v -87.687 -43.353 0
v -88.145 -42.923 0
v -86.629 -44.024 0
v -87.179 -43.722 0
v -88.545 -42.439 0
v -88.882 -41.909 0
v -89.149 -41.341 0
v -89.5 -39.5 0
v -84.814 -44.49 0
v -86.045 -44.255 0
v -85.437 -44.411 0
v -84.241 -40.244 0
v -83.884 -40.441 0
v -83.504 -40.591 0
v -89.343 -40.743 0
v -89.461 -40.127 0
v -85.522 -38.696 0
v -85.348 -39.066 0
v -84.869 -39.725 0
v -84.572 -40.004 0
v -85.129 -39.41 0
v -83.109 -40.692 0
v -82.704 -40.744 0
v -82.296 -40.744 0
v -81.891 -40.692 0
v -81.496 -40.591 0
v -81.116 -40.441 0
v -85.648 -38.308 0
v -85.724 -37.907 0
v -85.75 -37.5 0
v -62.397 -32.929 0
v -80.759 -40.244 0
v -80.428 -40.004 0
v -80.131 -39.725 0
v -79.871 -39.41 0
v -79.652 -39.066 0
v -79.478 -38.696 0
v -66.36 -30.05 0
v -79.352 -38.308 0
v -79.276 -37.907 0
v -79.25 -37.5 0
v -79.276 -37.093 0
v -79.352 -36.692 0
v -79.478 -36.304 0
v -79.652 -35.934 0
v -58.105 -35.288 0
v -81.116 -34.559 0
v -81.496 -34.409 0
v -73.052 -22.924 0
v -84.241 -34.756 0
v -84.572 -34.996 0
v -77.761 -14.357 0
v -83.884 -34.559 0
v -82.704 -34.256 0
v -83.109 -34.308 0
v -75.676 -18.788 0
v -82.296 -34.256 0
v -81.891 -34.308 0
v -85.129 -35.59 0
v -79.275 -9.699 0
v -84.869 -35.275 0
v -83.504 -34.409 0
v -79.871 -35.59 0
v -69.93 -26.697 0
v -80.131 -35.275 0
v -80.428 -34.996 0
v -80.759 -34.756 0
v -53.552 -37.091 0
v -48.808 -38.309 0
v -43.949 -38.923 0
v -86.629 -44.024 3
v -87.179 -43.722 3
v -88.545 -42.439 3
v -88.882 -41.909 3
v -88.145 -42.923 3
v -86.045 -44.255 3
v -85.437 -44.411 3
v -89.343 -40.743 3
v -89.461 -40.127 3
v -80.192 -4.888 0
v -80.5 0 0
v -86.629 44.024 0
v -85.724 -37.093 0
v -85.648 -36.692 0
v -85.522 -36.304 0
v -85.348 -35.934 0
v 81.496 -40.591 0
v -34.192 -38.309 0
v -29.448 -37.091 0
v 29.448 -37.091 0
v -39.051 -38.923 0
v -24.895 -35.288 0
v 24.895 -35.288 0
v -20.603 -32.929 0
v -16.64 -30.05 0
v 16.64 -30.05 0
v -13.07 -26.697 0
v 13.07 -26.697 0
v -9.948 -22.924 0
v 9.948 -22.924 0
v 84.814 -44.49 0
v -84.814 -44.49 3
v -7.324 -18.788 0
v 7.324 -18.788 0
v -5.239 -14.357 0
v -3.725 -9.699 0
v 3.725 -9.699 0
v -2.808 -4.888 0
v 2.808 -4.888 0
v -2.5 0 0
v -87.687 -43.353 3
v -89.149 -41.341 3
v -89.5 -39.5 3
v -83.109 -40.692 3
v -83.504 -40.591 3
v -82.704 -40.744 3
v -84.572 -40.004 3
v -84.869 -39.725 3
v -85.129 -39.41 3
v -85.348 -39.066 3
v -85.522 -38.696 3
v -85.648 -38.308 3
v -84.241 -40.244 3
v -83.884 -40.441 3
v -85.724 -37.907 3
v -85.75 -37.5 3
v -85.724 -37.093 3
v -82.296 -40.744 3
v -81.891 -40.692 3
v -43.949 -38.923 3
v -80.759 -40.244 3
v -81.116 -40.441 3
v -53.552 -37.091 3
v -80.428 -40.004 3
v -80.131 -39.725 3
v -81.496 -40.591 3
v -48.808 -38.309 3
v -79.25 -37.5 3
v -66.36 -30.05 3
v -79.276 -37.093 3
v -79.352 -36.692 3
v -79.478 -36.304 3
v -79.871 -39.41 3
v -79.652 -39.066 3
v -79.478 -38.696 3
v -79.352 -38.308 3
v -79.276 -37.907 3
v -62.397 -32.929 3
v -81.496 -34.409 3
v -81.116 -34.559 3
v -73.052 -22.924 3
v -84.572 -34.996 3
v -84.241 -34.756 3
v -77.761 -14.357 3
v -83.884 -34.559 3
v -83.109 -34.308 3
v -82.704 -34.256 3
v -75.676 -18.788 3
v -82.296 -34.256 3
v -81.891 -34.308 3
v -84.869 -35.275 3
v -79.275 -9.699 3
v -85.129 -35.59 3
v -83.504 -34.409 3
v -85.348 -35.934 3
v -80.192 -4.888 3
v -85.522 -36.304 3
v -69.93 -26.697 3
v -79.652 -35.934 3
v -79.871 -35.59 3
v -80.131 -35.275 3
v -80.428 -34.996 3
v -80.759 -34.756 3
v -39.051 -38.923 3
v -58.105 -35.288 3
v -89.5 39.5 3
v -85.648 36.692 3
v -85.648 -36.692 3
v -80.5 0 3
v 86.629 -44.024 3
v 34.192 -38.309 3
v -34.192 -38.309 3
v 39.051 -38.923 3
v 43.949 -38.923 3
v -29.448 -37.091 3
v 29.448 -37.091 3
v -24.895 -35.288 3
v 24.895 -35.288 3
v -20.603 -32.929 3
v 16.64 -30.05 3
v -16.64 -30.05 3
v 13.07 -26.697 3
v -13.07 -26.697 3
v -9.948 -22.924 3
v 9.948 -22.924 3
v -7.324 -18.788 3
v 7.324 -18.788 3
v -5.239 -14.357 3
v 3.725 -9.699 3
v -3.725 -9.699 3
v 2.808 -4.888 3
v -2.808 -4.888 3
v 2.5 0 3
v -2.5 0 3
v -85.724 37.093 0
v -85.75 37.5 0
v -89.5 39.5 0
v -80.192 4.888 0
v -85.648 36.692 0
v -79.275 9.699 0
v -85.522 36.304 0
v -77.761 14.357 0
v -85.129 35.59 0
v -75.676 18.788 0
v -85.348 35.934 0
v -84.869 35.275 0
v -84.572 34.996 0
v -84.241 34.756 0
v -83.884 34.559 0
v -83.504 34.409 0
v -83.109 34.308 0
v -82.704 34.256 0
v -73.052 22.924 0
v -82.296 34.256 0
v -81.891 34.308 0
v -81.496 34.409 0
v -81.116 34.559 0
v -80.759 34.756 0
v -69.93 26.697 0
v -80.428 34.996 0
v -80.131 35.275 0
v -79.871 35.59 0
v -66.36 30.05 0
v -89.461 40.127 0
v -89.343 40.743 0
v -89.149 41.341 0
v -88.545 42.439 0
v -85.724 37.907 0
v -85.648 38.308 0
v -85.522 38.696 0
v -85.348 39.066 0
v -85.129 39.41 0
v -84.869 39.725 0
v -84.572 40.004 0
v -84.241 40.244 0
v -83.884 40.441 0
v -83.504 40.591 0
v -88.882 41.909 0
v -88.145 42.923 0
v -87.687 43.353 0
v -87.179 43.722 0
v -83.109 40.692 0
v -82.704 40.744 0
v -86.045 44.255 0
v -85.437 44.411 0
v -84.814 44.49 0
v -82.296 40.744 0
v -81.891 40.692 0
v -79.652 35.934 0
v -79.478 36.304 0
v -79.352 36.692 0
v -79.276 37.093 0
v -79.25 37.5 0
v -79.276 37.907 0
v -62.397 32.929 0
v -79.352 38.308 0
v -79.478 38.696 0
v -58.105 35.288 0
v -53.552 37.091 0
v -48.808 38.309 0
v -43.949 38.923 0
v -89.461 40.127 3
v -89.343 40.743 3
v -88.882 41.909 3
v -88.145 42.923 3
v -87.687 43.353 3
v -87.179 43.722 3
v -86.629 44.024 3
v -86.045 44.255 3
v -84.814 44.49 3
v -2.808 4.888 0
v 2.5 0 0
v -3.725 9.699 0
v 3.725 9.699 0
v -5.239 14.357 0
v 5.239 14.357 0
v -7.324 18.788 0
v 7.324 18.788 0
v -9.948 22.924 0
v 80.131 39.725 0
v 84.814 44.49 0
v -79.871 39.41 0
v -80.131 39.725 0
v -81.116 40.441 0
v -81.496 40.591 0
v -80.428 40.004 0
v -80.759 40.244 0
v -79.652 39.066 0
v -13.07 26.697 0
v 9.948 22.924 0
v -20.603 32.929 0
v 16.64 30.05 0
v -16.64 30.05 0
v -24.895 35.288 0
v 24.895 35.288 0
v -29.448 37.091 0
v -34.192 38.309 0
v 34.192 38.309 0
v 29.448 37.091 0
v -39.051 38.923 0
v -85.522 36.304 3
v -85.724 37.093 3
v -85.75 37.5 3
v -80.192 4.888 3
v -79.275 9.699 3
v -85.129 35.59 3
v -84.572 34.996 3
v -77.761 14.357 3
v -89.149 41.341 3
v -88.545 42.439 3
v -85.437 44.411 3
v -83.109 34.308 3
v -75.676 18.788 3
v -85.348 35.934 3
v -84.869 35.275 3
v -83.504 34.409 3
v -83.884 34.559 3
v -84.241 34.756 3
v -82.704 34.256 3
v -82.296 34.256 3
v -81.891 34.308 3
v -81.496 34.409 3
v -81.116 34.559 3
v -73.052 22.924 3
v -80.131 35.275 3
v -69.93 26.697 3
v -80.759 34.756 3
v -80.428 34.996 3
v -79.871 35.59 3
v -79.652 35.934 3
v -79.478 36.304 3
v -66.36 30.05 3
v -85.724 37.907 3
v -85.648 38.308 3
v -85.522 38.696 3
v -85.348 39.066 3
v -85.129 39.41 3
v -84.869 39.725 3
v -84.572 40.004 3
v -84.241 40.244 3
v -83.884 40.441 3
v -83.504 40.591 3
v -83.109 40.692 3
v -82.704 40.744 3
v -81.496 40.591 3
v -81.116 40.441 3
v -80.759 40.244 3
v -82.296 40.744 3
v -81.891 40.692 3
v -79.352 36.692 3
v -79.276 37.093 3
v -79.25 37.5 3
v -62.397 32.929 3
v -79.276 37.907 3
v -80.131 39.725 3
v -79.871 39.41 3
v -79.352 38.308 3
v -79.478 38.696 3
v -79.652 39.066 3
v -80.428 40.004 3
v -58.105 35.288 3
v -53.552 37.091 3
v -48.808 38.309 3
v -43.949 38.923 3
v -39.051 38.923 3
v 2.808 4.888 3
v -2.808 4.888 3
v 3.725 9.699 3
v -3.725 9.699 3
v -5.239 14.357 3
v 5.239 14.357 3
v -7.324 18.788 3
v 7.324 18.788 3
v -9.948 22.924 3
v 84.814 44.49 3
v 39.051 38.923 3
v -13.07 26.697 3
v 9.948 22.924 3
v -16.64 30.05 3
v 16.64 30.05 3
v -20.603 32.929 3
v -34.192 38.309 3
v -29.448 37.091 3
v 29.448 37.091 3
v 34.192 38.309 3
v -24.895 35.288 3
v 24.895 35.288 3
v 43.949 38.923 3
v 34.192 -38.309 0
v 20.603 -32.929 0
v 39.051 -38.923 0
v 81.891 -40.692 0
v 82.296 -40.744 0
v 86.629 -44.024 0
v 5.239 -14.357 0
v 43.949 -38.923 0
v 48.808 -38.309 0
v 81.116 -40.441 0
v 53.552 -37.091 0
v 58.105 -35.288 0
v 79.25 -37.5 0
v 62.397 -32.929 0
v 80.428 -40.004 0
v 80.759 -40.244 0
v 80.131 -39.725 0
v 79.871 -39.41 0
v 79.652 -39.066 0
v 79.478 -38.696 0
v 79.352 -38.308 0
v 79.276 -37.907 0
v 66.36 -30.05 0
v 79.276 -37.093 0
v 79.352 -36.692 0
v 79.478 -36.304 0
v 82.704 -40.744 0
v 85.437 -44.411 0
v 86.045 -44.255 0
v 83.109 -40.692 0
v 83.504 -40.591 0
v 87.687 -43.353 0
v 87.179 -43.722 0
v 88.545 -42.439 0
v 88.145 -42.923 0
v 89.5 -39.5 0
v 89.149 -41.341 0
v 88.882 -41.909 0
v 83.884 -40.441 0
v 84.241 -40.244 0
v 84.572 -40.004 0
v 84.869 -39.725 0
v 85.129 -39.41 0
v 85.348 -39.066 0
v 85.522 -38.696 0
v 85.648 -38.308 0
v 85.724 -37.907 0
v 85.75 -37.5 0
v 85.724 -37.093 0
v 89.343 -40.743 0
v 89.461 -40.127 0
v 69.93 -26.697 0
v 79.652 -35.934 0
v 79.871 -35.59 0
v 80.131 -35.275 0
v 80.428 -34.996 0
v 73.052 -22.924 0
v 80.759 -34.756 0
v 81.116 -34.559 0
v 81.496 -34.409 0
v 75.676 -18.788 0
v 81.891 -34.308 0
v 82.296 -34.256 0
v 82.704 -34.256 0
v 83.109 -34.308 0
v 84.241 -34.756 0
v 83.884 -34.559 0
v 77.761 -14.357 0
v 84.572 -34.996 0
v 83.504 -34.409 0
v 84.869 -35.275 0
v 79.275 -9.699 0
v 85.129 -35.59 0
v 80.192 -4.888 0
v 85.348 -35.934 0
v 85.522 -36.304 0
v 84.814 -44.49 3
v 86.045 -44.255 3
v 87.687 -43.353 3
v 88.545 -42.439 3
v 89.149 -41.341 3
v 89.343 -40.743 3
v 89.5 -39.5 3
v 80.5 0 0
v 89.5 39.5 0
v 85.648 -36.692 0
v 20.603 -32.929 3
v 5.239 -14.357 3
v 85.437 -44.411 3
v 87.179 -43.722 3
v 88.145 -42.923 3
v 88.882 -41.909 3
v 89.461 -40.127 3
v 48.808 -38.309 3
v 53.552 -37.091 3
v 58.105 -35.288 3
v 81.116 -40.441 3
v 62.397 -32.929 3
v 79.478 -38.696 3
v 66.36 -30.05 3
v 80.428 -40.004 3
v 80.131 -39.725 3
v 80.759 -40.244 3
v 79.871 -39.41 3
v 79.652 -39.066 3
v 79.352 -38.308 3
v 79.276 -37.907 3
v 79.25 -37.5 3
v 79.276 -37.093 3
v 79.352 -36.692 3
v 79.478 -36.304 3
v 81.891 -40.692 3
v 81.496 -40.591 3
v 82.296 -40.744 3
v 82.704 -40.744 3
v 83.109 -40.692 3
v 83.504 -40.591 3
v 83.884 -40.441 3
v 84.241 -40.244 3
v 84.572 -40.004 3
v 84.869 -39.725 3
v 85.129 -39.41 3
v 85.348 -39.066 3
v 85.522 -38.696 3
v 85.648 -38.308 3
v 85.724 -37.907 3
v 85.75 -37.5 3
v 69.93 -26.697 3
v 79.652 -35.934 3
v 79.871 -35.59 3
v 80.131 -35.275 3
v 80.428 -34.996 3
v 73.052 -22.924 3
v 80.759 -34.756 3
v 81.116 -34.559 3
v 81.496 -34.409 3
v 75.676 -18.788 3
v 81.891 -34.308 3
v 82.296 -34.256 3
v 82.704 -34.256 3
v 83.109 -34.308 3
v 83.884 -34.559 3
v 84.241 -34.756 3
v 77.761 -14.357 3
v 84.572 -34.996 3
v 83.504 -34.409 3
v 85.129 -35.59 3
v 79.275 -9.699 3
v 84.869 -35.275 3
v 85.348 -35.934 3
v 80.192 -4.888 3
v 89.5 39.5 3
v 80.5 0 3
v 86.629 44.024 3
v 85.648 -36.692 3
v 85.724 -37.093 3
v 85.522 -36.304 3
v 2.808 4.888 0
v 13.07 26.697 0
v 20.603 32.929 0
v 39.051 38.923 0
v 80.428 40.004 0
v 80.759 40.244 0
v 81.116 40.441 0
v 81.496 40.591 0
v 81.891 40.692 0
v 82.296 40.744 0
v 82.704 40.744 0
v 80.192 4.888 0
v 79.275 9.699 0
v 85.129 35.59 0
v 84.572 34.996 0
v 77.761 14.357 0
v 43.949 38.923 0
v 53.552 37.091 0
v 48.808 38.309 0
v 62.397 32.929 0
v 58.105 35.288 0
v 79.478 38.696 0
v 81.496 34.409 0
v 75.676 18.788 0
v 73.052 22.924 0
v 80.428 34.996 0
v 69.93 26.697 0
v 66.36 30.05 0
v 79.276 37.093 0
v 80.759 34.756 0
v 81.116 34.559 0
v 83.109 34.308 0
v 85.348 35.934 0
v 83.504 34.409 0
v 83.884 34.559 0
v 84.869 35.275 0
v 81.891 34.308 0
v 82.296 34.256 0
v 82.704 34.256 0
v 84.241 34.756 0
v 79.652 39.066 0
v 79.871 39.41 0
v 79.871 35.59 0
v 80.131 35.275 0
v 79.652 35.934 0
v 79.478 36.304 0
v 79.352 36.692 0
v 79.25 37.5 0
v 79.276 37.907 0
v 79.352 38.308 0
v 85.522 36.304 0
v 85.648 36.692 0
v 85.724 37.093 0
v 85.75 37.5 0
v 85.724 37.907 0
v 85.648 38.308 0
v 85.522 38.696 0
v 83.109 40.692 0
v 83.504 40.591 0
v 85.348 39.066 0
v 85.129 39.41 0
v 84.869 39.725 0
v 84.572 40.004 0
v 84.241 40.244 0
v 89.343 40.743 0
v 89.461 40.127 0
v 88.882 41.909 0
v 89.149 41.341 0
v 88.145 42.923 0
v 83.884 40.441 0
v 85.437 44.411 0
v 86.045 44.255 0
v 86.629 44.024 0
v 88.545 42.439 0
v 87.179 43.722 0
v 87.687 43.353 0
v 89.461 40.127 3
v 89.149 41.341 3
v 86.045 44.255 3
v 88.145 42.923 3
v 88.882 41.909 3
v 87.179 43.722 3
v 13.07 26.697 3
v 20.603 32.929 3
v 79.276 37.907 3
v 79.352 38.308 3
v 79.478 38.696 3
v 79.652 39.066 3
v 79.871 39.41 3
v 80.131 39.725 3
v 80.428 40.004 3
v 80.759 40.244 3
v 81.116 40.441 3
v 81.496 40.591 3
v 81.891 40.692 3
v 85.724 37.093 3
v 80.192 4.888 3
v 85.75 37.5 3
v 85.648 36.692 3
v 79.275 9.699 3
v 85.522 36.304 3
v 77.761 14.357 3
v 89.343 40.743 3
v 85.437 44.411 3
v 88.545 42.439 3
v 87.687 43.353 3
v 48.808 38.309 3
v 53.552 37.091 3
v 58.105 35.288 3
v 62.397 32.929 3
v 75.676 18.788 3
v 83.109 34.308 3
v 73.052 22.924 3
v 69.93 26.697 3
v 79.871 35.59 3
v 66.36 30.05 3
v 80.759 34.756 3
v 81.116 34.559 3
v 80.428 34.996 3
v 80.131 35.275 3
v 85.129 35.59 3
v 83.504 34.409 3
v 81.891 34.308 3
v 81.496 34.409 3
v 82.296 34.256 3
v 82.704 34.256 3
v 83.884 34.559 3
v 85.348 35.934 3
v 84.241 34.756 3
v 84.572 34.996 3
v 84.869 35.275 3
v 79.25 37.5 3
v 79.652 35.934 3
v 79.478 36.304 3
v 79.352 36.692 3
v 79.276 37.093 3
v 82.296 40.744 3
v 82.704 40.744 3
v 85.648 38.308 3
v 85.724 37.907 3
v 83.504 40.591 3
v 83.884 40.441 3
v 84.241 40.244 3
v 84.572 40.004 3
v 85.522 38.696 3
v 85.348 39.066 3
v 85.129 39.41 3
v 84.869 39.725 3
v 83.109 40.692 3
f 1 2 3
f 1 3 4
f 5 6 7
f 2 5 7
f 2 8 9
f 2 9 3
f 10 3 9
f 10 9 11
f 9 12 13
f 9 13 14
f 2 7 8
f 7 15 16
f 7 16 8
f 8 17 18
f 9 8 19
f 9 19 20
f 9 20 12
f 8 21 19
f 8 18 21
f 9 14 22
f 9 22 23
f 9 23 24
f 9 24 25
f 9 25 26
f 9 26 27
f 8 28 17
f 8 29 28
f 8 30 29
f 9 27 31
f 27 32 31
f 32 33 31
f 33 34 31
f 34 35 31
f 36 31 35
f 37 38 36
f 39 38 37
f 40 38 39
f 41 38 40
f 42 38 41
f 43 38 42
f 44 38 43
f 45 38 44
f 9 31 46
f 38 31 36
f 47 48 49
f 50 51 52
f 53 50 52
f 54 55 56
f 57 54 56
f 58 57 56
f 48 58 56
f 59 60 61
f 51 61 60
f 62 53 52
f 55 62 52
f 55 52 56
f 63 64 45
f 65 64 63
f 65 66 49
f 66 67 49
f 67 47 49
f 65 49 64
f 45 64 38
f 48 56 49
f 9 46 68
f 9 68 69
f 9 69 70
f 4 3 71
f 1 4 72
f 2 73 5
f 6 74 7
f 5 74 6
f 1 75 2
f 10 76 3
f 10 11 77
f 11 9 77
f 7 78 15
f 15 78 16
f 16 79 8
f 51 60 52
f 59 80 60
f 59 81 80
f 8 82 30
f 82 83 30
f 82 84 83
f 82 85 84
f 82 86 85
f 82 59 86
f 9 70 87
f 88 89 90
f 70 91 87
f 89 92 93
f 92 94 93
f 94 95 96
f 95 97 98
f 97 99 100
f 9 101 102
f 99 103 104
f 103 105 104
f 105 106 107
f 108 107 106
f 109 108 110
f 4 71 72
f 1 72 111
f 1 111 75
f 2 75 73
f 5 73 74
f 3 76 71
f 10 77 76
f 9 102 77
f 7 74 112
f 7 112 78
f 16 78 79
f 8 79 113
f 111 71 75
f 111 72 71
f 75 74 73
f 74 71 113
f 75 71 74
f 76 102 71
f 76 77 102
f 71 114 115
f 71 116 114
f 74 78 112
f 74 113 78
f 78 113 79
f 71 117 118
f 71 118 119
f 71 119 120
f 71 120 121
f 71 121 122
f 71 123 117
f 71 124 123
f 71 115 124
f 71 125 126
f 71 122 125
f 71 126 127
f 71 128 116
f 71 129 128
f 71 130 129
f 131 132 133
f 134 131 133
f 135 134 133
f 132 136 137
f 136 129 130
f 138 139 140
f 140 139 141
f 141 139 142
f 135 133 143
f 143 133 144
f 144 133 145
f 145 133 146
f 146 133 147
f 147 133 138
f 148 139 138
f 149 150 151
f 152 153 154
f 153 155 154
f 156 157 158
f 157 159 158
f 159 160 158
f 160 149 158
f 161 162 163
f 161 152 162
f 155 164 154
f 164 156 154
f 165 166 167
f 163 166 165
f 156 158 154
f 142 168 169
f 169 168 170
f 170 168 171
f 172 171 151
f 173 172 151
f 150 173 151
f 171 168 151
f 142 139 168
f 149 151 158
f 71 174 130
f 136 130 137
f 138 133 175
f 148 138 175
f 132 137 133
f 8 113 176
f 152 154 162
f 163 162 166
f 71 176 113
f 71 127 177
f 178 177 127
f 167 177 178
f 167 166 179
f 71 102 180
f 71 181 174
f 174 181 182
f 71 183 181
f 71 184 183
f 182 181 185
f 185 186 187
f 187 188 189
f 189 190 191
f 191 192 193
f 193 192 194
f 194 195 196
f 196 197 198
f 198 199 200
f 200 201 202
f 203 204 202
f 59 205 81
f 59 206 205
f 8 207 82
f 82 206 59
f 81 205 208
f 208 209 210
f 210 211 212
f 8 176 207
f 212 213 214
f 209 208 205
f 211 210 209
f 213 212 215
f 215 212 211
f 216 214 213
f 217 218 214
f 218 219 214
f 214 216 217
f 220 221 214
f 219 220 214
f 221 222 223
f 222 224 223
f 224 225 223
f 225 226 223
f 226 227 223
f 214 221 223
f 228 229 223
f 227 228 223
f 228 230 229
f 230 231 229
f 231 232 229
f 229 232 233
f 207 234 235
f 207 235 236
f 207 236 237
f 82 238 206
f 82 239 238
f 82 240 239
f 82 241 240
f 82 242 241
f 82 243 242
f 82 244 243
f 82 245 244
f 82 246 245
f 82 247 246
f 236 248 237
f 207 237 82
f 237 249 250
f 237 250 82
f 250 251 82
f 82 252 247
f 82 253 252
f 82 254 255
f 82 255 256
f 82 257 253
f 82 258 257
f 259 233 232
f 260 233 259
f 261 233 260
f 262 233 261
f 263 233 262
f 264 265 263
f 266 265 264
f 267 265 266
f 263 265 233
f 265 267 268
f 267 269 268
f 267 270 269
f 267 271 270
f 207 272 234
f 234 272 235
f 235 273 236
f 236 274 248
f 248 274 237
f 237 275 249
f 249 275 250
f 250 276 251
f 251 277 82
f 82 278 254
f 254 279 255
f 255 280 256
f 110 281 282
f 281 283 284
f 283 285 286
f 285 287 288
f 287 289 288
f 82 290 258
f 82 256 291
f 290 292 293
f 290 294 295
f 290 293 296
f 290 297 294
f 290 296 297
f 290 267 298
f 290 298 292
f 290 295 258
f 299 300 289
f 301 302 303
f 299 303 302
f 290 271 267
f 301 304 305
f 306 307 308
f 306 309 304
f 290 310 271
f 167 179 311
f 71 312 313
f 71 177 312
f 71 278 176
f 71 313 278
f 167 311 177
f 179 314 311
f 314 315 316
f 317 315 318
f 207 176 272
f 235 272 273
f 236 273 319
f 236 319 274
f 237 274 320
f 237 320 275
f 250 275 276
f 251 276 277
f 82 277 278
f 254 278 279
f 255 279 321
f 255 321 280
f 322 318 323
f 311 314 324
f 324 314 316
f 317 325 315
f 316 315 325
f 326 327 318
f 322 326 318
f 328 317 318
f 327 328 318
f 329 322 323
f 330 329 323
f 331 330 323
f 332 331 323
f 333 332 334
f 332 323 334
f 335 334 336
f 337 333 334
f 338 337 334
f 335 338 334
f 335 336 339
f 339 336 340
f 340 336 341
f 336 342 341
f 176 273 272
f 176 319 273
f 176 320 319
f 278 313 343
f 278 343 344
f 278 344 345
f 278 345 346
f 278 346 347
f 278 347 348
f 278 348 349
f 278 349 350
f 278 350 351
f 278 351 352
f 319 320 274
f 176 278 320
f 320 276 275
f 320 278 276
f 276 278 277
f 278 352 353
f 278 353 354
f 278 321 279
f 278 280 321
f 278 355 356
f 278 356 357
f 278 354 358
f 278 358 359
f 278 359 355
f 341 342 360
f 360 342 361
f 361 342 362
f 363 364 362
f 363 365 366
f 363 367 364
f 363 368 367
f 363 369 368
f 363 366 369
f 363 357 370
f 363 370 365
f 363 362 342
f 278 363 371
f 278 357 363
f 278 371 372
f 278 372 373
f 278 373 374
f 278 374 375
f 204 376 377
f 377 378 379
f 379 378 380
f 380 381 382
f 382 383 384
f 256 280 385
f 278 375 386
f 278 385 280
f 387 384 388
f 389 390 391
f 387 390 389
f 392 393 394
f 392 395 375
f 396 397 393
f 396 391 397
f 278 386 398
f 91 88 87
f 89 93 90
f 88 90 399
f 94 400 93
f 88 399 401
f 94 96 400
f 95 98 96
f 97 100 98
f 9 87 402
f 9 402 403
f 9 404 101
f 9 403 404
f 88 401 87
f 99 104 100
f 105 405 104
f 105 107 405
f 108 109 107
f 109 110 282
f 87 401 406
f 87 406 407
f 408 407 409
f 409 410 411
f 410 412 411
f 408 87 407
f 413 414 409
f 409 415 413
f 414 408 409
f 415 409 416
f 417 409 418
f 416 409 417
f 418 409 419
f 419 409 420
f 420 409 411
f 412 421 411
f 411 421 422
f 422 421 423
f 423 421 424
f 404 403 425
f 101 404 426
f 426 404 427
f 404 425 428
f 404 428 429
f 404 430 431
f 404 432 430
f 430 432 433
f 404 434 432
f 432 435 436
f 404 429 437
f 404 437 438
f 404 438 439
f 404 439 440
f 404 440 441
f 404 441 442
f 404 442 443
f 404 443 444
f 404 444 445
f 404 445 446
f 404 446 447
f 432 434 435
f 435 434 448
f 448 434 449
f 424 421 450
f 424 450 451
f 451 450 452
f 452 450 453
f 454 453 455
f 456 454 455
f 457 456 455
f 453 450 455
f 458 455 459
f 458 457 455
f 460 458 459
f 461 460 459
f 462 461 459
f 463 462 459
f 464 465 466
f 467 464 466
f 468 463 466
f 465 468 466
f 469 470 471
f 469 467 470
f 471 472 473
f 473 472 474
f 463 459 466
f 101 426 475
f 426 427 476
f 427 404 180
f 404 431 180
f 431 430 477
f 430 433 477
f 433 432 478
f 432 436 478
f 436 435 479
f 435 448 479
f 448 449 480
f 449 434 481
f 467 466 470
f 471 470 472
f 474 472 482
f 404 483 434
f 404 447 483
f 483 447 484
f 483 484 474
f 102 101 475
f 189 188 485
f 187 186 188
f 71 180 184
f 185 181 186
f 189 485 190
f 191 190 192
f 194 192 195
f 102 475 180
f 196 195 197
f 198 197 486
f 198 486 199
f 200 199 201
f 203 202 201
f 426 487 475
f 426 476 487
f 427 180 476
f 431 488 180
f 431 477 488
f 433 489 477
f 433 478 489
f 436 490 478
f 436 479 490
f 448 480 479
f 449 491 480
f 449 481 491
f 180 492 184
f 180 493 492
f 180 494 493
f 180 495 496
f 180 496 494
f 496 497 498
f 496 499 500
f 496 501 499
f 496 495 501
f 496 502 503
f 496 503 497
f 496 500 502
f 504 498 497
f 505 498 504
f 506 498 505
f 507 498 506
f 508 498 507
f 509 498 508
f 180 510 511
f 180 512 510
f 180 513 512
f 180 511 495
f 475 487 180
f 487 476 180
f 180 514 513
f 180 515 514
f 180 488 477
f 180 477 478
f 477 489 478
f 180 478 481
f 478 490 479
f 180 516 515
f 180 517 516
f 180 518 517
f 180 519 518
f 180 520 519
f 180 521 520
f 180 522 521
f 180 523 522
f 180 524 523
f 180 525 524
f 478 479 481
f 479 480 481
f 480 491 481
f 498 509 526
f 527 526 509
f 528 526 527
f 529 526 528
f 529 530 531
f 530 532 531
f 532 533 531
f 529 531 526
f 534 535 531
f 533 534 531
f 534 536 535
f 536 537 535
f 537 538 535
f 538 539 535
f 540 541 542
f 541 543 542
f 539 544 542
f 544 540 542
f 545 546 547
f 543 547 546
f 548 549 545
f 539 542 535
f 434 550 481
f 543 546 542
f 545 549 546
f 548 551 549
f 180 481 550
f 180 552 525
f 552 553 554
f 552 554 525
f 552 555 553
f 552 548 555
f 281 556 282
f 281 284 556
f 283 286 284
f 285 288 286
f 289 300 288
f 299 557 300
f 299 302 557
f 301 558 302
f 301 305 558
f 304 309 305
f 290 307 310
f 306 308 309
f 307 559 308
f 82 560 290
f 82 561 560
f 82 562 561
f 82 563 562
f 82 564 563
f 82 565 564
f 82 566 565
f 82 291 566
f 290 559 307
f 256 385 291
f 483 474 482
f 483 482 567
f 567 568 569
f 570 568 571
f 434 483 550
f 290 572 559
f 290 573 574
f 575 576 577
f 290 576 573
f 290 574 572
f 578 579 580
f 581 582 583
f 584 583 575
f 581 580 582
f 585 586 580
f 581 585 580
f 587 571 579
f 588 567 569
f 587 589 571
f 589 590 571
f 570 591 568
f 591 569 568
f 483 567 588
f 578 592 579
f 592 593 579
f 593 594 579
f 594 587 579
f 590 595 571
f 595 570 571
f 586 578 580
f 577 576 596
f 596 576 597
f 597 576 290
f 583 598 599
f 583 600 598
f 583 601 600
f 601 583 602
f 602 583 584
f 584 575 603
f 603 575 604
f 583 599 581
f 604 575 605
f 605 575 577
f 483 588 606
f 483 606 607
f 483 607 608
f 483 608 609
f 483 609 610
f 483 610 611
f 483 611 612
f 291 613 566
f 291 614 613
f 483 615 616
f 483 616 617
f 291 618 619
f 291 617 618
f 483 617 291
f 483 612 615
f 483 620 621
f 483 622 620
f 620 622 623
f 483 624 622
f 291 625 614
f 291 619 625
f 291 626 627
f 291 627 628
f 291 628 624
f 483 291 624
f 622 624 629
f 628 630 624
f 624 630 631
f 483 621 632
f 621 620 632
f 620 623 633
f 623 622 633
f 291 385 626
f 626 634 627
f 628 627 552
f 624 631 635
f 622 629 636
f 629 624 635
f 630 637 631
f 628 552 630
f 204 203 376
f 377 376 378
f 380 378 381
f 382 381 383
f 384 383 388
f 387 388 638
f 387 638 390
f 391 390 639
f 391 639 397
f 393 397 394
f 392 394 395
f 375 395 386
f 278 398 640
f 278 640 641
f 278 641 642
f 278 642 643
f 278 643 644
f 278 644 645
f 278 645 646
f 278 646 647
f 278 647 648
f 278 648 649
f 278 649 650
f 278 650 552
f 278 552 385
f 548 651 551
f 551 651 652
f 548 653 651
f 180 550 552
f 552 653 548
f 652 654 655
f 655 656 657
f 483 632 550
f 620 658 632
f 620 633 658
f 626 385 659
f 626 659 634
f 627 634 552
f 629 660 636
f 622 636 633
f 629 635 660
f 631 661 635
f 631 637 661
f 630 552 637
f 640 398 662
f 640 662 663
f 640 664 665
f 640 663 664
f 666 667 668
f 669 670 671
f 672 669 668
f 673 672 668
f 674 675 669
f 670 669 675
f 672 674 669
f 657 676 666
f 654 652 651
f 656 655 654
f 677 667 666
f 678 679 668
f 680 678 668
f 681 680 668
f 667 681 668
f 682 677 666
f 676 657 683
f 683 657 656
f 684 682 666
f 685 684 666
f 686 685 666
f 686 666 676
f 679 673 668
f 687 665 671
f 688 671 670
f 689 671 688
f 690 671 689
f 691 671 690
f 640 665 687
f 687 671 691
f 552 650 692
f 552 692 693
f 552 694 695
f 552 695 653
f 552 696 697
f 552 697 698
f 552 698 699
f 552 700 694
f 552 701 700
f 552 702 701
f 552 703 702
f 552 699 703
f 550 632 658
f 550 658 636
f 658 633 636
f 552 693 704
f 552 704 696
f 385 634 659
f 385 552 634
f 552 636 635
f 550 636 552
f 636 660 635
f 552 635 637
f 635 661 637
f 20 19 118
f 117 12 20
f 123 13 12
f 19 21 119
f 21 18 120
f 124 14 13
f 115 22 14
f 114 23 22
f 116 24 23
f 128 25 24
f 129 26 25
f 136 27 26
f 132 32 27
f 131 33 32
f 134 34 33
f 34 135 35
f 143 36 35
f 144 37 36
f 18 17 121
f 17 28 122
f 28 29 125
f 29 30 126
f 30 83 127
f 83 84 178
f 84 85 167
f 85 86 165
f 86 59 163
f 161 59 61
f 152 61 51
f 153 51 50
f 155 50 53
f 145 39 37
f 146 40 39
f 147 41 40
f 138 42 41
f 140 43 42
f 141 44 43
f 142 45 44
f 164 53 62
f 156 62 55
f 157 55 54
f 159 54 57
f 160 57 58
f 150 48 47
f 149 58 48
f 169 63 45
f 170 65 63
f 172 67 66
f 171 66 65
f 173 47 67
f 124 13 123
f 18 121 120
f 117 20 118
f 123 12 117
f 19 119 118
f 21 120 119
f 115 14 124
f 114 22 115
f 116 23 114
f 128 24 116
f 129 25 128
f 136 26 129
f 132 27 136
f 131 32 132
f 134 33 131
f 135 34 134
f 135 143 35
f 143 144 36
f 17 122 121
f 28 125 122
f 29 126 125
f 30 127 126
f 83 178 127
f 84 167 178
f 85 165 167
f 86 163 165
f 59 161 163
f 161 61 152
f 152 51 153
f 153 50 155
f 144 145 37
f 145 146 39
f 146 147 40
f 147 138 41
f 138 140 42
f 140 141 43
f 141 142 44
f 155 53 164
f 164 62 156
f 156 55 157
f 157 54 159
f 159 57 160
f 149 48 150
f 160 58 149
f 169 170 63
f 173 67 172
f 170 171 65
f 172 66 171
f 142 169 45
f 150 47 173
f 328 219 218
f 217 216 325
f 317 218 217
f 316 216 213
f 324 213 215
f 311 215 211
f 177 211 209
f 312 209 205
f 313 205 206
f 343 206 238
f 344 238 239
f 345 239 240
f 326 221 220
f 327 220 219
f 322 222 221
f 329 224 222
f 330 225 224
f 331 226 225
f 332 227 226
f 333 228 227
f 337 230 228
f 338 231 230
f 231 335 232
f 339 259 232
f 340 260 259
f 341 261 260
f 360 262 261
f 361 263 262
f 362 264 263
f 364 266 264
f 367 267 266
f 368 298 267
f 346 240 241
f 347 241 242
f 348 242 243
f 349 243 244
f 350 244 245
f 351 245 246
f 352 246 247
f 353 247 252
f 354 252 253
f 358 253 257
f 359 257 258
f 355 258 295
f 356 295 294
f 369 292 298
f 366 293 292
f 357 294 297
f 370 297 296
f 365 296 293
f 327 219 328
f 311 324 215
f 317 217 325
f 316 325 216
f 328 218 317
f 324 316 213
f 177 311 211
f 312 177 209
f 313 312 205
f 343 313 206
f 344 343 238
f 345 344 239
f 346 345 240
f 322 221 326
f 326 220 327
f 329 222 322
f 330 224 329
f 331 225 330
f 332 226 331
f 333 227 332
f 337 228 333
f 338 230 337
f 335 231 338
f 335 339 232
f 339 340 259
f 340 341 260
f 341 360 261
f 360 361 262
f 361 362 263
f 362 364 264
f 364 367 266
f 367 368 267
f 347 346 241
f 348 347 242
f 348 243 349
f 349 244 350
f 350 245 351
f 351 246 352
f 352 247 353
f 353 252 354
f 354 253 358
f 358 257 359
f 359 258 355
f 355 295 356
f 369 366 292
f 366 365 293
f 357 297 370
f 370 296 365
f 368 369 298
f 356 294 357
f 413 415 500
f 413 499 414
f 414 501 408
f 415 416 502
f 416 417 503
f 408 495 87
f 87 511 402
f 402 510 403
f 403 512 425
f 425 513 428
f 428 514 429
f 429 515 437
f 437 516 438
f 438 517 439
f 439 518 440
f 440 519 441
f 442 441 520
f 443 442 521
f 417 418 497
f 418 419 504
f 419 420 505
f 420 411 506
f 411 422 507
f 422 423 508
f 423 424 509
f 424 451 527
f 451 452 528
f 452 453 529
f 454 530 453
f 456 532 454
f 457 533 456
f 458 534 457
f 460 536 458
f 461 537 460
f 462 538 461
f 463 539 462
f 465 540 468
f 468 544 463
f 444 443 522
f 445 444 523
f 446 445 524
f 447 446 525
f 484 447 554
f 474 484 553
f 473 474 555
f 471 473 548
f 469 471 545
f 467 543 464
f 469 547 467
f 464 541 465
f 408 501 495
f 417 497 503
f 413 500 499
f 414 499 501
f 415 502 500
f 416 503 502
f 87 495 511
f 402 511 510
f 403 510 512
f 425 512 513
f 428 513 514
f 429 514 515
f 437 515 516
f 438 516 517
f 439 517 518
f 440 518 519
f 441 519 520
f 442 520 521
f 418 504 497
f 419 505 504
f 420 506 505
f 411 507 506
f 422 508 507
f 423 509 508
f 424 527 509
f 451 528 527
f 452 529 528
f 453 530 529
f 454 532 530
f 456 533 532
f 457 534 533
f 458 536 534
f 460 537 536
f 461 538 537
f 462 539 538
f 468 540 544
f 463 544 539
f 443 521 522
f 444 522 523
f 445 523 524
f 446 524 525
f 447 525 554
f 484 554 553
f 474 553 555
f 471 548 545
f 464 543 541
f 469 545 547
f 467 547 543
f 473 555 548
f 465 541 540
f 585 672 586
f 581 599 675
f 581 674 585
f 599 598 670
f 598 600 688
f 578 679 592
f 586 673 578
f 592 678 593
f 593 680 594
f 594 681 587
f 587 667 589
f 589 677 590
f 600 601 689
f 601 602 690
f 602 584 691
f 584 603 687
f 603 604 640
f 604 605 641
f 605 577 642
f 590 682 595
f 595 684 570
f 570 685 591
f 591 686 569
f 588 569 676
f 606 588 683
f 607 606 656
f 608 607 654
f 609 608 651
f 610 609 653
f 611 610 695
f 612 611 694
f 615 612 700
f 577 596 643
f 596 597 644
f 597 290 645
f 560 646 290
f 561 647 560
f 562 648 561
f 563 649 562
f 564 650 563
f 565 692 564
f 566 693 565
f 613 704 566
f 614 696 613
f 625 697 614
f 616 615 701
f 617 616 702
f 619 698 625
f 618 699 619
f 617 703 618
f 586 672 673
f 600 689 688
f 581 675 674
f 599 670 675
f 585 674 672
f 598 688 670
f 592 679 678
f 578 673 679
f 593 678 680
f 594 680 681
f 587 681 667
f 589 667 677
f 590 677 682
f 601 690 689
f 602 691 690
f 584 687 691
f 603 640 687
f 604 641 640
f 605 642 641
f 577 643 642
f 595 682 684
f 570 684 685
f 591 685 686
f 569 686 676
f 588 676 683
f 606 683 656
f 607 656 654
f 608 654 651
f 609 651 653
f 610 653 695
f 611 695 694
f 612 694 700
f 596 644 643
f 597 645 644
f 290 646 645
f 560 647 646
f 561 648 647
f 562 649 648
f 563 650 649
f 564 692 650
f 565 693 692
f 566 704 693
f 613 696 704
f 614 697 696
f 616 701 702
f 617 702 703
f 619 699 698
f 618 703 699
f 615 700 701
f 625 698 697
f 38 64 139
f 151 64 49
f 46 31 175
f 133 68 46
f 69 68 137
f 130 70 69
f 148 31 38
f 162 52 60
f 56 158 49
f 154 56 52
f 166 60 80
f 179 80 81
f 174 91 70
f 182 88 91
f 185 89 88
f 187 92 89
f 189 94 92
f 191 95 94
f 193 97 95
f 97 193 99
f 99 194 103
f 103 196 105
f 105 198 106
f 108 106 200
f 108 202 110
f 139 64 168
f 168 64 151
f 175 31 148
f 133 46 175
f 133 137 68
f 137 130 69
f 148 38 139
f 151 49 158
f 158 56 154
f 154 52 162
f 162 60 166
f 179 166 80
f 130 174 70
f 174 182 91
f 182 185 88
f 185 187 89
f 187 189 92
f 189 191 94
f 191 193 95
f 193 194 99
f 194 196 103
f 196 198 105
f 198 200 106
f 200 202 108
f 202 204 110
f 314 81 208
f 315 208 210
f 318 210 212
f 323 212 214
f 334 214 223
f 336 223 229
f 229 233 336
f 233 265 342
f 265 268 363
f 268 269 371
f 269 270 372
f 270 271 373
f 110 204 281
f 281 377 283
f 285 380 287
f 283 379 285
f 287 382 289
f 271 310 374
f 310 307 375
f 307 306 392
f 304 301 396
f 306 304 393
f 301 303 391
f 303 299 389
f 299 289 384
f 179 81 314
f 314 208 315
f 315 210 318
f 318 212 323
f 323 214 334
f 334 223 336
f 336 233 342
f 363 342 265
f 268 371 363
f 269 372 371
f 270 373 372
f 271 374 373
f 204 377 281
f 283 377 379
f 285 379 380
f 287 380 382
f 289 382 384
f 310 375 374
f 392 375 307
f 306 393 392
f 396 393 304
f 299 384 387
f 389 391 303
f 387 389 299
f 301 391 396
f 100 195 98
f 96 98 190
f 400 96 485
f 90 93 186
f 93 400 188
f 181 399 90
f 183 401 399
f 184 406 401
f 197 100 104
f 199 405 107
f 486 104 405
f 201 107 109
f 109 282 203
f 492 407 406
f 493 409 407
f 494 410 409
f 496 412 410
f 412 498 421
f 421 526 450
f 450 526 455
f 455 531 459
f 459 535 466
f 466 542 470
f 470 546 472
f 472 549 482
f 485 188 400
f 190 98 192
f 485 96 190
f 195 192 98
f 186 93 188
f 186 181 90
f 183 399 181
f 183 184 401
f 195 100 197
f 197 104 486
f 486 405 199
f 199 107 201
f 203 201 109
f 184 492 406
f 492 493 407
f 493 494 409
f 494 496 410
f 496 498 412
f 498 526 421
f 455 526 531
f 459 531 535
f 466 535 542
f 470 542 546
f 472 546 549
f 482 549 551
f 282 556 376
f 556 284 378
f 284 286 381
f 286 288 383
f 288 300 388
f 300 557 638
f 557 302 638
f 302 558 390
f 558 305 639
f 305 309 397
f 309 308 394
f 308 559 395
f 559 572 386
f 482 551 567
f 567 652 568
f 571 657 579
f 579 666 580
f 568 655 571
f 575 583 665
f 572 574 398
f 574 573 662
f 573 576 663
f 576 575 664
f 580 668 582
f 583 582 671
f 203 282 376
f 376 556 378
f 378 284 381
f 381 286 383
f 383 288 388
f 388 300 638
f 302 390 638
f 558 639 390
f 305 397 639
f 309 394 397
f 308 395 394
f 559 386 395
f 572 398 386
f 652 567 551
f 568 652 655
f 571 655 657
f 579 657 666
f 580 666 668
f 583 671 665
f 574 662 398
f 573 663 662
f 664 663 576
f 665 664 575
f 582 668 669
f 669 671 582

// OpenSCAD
$fn = 50;

difference() {
	union() {
		hull() {
			translate(v = [-84.5, 39.5, 0]) {
				cylinder(h = 3, r = 5);
			}
			translate(v = [84.5, 39.5, 0]) {
				cylinder(h = 3, r = 5);
			}
			translate(v = [-84.5, -39.5, 0]) {
				cylinder(h = 3, r = 5);
			}
			translate(v = [84.5, -39.5, 0]) {
				cylinder(h = 3, r = 5);
			}
		}
	}
	union() {
		translate(v = [-82.5, -37.5, -100.0]) {
			cylinder(h = 200, r = 3.25);
		}
		translate(v = [-82.5, 37.5, -100.0]) {
			cylinder(h = 200, r = 3.25);
		}
		translate(v = [82.5, -37.5, -100.0]) {
			cylinder(h = 200, r = 3.25);
		}
		translate(v = [82.5, 37.5, -100.0]) {
			cylinder(h = 200, r = 3.25);
		}
		translate(v = [-82.5, -37.5, -100.0]) {
			cylinder(h = 200, r = 1.8);
		}
		translate(v = [-82.5, 37.5, -100.0]) {
			cylinder(h = 200, r = 1.8);
		}
		translate(v = [82.5, -37.5, -100.0]) {
			cylinder(h = 200, r = 1.8);
		}
		translate(v = [82.5, 37.5, -100.0]) {
			cylinder(h = 200, r = 1.8);
		}
		translate(v = [-41.5, 0, 0.0]) {
			cylinder(h = 3, r = 39.0);
		}
		translate(v = [41.5, 0, 0.0]) {
			cylinder(h = 3, r = 39.0);
		}
	}
}
